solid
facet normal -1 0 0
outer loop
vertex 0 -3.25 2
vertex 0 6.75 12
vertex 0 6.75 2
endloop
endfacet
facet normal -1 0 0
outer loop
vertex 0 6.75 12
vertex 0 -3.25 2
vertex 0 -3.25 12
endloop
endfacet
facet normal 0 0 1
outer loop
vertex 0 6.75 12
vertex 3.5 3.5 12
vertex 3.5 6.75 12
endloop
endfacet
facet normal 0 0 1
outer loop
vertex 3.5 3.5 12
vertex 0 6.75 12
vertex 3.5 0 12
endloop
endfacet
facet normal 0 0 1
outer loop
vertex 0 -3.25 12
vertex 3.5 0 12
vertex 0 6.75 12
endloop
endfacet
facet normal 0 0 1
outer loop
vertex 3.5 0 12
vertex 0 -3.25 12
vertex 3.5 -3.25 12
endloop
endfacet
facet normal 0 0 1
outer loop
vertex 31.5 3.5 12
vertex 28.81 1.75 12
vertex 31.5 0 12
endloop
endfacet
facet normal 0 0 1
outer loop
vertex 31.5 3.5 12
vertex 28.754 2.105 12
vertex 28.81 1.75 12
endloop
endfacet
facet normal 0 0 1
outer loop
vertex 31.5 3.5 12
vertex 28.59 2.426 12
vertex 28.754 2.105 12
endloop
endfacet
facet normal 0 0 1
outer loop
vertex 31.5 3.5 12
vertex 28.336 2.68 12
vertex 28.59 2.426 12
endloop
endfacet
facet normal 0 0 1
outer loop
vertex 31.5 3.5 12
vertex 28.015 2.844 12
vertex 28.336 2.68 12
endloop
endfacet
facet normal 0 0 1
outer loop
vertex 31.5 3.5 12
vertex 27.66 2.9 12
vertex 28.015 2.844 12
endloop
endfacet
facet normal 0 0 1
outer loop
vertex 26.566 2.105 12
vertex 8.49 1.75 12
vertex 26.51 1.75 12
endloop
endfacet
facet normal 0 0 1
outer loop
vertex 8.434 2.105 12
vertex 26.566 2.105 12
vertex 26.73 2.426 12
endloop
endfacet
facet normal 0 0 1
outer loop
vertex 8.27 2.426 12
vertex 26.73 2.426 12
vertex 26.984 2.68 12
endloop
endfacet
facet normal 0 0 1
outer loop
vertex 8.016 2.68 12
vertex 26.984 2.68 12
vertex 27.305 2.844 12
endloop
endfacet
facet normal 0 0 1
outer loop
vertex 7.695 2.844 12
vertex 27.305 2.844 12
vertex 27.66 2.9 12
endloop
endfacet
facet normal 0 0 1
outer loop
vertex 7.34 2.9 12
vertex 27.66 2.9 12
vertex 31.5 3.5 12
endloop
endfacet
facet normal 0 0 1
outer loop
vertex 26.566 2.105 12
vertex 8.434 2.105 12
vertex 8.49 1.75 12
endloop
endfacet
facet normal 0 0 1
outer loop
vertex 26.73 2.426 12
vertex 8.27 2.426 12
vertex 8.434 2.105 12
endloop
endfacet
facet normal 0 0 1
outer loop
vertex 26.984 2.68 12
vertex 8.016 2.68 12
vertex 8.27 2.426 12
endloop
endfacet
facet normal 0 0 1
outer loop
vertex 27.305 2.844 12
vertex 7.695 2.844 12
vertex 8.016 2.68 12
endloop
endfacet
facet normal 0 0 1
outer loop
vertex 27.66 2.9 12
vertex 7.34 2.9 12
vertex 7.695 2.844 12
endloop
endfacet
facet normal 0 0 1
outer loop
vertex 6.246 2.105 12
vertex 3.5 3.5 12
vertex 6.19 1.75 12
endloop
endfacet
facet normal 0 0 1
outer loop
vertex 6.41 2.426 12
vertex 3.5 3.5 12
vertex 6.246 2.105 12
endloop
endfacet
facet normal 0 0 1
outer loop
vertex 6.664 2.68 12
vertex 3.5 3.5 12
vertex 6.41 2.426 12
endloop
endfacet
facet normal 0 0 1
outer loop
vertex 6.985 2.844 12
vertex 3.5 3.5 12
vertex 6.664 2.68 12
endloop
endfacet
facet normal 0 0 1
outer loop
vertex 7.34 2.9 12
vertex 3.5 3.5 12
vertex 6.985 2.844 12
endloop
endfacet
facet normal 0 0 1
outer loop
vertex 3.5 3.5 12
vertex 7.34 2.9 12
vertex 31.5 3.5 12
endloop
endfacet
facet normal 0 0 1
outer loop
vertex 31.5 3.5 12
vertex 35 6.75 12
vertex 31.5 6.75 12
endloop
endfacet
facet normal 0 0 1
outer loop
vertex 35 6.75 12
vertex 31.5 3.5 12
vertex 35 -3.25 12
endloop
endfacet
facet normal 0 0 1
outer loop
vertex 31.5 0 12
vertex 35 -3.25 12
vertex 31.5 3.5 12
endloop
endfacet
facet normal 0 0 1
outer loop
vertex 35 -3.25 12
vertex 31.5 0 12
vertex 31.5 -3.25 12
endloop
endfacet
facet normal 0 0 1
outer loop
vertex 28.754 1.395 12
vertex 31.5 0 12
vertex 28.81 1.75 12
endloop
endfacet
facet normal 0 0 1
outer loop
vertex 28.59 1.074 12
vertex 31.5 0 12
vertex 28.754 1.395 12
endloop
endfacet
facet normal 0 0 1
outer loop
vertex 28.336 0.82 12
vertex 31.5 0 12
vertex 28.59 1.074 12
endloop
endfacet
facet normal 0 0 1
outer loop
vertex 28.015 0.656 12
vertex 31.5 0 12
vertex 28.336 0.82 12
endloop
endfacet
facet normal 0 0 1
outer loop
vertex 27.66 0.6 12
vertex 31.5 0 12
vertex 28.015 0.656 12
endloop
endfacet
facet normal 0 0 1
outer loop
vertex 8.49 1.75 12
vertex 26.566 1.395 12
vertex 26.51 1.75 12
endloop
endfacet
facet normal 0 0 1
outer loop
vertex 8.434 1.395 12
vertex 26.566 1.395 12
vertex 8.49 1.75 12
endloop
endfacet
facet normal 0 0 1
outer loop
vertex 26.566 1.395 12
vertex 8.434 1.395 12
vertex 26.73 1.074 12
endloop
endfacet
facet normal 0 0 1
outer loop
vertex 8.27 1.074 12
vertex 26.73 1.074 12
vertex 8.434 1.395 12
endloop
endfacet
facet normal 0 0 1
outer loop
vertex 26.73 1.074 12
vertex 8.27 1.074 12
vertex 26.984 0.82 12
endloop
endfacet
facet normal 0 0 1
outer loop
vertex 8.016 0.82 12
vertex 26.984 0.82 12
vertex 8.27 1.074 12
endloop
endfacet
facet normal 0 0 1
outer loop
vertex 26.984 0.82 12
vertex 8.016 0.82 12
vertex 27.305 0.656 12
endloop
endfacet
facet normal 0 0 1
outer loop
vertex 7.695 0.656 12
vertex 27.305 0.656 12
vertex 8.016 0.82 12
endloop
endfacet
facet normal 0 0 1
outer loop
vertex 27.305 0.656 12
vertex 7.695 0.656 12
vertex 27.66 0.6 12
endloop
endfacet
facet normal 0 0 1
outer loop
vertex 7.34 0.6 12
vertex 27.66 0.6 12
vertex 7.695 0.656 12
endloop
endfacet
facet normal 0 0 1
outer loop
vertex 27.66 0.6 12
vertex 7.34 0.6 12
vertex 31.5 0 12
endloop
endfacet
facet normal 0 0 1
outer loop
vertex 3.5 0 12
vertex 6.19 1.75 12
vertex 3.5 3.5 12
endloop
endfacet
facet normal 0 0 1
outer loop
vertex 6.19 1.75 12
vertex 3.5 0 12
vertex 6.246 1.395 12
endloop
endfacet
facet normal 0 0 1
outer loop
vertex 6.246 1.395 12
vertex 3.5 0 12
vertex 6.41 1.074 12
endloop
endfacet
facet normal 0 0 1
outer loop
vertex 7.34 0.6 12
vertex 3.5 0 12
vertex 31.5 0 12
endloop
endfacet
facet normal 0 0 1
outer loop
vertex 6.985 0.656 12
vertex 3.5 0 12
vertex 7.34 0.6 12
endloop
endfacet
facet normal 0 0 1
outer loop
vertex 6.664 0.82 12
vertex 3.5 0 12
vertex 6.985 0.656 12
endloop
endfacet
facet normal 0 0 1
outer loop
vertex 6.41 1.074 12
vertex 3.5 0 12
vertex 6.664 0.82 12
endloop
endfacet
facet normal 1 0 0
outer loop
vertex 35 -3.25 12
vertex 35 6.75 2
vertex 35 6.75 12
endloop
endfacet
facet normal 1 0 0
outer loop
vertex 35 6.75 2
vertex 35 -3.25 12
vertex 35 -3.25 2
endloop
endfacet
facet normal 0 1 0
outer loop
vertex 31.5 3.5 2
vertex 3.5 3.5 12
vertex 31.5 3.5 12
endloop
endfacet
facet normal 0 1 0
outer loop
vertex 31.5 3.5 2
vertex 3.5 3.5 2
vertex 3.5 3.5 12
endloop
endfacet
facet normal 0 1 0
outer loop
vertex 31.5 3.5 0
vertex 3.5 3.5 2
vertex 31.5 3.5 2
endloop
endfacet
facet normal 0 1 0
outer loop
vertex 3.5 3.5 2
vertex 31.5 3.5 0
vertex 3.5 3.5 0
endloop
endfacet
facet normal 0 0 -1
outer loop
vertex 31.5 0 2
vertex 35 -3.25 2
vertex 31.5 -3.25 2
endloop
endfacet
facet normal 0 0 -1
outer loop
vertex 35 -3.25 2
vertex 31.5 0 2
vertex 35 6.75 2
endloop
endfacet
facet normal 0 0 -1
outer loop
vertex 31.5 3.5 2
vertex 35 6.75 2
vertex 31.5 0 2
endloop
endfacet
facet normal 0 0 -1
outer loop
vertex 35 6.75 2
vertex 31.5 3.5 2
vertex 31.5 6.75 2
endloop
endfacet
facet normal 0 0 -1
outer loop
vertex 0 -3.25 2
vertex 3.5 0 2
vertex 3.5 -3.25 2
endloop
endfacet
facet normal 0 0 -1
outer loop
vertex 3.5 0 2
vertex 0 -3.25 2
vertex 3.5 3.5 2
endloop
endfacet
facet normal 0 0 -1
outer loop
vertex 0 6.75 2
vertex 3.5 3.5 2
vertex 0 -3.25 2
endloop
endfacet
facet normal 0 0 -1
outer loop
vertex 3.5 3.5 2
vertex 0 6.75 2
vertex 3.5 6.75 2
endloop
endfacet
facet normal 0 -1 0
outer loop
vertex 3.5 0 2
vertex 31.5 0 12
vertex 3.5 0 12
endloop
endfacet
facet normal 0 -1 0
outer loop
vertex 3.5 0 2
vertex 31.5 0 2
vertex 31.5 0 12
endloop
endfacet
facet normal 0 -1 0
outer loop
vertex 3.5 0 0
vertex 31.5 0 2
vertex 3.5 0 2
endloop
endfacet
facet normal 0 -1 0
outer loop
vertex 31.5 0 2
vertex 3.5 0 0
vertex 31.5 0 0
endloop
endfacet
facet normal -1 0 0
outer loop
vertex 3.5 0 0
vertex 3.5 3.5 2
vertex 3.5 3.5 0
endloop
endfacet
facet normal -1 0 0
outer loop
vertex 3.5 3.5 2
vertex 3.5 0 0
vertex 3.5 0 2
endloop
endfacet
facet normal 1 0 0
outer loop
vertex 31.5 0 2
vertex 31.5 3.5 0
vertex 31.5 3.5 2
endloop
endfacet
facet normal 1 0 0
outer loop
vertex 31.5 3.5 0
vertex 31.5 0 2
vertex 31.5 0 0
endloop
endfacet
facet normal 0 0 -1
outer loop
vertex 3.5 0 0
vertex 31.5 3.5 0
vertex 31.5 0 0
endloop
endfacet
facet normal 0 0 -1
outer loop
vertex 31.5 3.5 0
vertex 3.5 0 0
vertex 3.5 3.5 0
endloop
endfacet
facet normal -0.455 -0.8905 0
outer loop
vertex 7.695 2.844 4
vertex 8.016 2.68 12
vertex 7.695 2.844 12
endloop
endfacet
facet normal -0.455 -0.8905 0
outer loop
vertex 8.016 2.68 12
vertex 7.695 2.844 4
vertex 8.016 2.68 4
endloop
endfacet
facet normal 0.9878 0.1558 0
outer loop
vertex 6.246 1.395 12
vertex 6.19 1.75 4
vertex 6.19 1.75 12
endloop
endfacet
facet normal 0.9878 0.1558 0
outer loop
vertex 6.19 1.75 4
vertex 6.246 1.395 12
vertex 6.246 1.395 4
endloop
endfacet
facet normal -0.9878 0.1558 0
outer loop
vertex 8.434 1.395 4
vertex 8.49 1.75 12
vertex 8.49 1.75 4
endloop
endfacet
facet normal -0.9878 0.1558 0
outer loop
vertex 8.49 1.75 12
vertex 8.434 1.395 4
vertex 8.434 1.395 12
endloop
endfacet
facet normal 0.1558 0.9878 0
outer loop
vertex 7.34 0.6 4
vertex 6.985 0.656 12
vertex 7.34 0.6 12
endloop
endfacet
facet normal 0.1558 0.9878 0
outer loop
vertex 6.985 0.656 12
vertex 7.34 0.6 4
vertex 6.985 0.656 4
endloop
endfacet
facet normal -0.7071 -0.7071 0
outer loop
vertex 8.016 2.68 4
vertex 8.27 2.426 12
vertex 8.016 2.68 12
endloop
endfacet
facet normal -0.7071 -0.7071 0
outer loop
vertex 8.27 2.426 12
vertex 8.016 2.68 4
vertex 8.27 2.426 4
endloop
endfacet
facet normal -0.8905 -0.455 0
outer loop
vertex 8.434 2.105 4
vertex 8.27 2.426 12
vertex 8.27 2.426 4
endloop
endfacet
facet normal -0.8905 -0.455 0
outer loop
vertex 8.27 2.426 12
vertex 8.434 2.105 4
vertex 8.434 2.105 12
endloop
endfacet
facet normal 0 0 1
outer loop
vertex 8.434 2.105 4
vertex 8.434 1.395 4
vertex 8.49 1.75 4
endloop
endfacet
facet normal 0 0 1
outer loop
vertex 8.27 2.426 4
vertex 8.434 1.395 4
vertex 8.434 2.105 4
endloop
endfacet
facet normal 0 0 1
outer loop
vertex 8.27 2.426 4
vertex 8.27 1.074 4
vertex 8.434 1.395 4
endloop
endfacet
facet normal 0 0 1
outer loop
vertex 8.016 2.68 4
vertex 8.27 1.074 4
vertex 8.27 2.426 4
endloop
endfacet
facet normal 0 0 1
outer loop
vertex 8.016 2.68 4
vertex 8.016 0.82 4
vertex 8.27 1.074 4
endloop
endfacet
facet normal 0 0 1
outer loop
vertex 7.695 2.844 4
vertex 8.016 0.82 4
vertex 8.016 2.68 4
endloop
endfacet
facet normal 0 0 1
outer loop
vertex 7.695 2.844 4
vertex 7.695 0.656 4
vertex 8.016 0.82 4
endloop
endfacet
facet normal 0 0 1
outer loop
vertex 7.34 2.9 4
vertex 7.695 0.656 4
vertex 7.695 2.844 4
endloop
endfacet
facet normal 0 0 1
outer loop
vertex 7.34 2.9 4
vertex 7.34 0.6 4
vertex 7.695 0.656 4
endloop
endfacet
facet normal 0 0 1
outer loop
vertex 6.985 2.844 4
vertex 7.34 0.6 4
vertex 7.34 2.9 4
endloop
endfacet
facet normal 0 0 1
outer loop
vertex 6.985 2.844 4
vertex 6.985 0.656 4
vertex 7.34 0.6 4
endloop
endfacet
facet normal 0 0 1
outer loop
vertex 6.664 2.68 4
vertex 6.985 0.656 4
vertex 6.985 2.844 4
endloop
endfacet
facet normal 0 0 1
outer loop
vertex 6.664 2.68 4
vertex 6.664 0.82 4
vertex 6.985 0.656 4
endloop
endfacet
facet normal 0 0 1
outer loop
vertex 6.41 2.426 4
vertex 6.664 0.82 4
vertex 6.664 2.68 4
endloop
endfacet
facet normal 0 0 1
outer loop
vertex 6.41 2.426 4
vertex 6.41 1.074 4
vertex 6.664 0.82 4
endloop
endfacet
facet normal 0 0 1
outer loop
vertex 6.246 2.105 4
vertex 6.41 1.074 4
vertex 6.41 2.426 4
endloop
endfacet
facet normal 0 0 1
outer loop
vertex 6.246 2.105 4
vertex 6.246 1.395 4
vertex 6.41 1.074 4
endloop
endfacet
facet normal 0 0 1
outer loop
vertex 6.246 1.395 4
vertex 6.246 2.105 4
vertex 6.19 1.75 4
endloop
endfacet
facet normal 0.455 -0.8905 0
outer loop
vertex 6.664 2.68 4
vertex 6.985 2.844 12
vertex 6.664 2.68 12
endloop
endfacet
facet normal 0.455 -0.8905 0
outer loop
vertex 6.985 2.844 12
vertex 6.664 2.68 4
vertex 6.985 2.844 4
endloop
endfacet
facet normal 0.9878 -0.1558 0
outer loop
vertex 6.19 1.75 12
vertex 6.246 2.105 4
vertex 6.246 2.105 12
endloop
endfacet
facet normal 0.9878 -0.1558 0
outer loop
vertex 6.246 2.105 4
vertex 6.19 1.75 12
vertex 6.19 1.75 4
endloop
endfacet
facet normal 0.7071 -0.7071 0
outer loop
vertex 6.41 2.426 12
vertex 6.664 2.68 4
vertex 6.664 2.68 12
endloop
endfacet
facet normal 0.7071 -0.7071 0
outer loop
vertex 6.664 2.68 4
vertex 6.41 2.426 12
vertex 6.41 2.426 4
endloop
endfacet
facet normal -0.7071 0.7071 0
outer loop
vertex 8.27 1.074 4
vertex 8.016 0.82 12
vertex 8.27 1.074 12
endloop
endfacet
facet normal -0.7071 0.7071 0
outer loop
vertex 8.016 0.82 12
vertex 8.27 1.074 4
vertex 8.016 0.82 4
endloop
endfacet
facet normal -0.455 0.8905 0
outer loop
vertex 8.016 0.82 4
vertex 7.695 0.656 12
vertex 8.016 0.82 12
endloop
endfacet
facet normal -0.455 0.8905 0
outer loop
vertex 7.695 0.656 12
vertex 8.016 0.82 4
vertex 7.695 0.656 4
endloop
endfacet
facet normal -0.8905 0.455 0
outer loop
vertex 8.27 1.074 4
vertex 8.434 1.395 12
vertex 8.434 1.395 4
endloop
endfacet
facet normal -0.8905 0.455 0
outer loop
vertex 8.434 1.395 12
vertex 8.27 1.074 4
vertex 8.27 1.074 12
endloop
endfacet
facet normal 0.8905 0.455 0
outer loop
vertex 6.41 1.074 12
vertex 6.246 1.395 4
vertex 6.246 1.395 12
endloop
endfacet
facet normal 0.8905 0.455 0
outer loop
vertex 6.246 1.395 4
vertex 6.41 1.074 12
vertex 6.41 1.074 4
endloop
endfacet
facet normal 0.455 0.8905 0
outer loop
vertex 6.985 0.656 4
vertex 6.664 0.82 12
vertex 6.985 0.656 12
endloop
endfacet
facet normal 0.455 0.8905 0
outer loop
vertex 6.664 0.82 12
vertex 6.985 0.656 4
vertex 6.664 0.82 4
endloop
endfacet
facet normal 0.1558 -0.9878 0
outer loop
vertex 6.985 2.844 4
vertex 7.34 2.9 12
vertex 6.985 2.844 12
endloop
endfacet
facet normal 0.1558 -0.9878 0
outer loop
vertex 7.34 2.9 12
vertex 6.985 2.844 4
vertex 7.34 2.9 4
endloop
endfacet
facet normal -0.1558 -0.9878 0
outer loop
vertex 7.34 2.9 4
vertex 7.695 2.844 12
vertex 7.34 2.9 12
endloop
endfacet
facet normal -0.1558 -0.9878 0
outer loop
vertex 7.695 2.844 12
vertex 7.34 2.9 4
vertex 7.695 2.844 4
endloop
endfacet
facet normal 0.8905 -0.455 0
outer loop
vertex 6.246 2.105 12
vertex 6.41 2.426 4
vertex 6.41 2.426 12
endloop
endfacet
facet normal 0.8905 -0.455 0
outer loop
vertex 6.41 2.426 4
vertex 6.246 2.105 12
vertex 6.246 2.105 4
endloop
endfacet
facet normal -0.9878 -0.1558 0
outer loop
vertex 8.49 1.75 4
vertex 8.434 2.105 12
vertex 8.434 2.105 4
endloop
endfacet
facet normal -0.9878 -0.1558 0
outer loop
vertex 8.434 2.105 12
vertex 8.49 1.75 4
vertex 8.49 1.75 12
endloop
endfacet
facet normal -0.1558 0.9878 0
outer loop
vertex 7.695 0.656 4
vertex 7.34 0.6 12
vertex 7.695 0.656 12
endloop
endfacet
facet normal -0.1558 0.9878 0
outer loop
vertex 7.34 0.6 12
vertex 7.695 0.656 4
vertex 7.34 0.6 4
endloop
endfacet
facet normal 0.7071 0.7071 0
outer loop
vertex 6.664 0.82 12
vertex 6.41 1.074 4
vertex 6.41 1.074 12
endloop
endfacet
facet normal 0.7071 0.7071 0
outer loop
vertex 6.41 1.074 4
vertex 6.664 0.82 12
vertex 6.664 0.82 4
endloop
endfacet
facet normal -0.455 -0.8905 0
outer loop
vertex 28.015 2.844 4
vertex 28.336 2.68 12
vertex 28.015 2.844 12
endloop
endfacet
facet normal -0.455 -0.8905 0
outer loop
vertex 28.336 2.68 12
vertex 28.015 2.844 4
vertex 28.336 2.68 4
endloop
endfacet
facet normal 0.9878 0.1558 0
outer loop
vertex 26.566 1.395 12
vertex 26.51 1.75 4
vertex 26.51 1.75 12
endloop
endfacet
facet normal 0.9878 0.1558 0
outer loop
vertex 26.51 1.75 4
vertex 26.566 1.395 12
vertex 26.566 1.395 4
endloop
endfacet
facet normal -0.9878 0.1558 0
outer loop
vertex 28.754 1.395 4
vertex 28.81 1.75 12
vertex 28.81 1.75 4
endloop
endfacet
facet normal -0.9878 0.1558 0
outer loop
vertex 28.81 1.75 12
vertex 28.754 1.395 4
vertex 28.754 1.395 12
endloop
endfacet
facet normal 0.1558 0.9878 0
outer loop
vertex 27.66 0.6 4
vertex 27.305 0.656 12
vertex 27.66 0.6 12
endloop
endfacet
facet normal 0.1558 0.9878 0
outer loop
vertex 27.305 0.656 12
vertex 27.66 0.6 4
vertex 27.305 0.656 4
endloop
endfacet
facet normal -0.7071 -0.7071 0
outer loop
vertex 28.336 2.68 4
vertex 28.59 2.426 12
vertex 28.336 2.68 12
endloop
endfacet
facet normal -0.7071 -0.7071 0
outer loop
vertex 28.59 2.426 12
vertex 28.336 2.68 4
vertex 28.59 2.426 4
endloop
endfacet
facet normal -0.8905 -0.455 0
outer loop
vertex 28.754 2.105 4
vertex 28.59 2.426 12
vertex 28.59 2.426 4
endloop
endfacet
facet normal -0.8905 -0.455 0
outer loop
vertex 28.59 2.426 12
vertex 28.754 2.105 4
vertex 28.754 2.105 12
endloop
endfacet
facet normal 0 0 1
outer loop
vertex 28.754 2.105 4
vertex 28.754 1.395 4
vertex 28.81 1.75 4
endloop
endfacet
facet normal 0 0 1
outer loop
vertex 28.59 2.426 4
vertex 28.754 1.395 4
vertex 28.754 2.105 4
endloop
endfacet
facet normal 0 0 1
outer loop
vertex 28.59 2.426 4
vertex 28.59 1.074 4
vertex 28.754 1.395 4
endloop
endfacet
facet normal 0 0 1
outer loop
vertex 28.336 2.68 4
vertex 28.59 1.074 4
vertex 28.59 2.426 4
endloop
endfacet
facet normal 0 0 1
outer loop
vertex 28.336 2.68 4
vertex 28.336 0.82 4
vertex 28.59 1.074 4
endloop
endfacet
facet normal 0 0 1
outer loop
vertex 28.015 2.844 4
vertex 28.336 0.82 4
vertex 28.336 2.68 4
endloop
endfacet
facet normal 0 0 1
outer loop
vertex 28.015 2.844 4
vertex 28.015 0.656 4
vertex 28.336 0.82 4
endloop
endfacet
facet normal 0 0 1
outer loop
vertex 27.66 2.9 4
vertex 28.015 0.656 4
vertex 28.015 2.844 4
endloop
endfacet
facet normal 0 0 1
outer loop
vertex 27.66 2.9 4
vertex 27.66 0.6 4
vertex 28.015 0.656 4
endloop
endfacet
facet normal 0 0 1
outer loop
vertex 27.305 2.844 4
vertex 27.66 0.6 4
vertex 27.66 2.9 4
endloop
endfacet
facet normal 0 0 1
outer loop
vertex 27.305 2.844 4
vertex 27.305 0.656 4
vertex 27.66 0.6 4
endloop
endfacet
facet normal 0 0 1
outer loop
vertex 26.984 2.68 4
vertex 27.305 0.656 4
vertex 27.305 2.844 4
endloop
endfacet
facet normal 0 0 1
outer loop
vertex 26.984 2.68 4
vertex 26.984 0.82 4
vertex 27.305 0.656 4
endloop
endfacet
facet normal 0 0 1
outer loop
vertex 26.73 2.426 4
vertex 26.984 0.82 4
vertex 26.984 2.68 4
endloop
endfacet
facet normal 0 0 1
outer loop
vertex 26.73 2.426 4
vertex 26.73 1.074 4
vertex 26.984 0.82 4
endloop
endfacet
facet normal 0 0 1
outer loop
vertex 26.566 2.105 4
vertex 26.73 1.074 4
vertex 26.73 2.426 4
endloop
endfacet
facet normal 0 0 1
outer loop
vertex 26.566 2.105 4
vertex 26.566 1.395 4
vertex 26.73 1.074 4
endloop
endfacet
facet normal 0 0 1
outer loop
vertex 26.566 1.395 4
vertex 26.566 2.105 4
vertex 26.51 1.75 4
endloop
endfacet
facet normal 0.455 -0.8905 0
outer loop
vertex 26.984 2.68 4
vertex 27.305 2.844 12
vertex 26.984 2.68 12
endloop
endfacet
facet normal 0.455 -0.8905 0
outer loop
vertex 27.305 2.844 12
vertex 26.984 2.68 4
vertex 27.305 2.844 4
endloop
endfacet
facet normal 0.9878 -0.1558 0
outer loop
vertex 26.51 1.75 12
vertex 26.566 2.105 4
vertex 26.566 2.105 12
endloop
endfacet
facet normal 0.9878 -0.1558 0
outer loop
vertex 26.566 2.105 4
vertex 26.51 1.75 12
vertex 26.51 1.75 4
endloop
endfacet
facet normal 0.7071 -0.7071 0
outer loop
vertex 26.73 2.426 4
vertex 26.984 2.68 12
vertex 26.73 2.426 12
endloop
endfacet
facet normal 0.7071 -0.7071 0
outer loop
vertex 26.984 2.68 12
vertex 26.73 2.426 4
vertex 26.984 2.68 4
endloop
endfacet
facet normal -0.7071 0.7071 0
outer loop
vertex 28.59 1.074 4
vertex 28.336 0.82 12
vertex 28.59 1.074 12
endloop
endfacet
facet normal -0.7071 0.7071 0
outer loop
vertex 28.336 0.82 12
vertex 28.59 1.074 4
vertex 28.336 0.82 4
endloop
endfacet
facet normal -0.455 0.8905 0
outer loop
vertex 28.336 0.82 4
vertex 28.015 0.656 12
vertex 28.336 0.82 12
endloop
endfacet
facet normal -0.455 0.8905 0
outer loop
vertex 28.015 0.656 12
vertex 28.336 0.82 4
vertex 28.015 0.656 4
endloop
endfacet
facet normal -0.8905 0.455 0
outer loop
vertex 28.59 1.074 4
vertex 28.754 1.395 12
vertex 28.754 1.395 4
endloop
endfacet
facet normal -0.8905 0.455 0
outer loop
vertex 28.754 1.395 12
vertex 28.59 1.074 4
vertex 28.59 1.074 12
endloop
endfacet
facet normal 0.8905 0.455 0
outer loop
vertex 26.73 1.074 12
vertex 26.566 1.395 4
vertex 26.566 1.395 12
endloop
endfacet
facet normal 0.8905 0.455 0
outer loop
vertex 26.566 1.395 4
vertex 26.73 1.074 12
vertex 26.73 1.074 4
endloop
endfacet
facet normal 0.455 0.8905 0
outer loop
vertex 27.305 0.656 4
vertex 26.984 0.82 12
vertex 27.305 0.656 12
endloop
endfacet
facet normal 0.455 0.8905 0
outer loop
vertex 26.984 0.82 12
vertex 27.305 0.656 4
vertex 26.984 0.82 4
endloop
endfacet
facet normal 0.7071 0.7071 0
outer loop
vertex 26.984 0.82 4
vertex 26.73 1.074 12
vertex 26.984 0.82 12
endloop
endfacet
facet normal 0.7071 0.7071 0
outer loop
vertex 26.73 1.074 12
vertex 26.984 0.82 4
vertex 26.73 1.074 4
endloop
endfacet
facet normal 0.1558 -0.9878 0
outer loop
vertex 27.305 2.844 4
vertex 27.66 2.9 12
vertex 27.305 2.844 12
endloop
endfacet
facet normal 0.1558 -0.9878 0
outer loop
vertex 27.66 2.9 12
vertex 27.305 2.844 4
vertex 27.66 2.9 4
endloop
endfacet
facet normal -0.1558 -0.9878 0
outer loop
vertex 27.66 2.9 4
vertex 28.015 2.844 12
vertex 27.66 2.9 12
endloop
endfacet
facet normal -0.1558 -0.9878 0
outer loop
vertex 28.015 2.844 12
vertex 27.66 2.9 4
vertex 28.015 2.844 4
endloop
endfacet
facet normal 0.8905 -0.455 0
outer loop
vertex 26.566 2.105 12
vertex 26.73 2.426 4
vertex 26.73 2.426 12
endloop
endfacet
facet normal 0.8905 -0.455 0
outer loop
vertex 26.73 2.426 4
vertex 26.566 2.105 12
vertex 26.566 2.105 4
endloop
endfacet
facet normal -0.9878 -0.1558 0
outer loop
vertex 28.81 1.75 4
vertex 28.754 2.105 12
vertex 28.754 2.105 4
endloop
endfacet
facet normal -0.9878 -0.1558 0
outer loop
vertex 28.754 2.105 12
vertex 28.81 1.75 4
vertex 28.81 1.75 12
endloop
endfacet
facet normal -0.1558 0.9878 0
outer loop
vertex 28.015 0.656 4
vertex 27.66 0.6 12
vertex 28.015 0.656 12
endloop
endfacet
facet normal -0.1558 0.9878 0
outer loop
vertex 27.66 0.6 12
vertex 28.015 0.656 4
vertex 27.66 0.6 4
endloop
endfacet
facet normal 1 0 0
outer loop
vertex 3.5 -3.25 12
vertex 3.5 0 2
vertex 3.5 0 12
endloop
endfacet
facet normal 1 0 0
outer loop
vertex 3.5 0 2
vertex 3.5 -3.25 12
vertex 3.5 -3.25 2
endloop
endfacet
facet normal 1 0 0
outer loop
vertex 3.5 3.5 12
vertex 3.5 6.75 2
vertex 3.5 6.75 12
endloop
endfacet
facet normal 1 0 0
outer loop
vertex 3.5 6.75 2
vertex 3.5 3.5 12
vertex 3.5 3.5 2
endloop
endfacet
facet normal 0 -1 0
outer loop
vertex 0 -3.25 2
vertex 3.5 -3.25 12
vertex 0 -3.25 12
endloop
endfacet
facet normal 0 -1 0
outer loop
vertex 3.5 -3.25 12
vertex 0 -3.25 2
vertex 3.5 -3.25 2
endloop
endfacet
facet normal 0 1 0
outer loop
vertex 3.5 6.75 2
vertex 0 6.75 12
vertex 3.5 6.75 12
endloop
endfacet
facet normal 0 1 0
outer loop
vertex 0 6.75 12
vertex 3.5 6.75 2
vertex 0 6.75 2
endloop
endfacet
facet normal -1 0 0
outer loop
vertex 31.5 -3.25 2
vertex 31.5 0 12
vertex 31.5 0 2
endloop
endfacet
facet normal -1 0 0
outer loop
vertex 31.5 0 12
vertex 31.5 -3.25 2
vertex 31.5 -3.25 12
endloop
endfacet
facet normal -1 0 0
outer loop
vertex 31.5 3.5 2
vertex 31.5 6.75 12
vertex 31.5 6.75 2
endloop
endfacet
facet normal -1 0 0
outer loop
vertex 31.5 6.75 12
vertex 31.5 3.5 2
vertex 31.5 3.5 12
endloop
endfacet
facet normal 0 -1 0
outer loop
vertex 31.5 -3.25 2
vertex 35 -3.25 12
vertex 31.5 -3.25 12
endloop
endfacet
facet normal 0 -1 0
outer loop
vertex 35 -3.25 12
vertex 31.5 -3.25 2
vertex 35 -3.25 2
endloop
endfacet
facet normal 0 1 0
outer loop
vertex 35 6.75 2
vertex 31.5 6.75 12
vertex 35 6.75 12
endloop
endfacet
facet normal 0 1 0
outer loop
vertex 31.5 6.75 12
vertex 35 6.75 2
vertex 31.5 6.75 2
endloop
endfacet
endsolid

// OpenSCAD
// Pybadge VL53L5CX Mount
//
// This can be glued into the existing Pybadge camera 3D print
// to mount a a VL53L5CX depth sensor.
//
// Daniel Winker, June 26, 2023

standoffHeight = 10;
innerWidth = 28;
outerWidth = 35;
frameThickness = 2;
legLength = 10;
thickness = 3.5;
legWidth = (outerWidth - innerWidth)/2;

screwDia = 2.3;
screwSep = 20.32;
screwHeight = 8;

difference() {
    // The main body
    union() {
        translate([0, 0, frameThickness]) {
            cube([outerWidth, thickness, standoffHeight]);   
        }
        translate([legWidth, 0, 0]) {
            cube([innerWidth, thickness, frameThickness]);   
        }
    }
    // The screw holes
    translate([outerWidth/2-screwSep/2, thickness/2, standoffHeight+frameThickness-screwHeight]) {  
        cylinder(r=screwDia/2, screwHeight, $fn=20);
    }
    translate([outerWidth/2+screwSep/2, thickness/2, standoffHeight+frameThickness-screwHeight]) {  
        cylinder(r=screwDia/2, screwHeight, $fn=20);
    }
}

// The legs
// I made the legs as tall as the standoffs so this can be printed upside-down
// without supports. This results in the smoothest possible bottom-surface
// for the legs.
translate([0, -legLength/2+thickness/2, frameThickness]) {
    cube([legWidth, legLength, standoffHeight]);
}
translate([outerWidth-legWidth, -legLength/2+thickness/2, frameThickness]) {
    cube([legWidth, legLength, standoffHeight]);
}
